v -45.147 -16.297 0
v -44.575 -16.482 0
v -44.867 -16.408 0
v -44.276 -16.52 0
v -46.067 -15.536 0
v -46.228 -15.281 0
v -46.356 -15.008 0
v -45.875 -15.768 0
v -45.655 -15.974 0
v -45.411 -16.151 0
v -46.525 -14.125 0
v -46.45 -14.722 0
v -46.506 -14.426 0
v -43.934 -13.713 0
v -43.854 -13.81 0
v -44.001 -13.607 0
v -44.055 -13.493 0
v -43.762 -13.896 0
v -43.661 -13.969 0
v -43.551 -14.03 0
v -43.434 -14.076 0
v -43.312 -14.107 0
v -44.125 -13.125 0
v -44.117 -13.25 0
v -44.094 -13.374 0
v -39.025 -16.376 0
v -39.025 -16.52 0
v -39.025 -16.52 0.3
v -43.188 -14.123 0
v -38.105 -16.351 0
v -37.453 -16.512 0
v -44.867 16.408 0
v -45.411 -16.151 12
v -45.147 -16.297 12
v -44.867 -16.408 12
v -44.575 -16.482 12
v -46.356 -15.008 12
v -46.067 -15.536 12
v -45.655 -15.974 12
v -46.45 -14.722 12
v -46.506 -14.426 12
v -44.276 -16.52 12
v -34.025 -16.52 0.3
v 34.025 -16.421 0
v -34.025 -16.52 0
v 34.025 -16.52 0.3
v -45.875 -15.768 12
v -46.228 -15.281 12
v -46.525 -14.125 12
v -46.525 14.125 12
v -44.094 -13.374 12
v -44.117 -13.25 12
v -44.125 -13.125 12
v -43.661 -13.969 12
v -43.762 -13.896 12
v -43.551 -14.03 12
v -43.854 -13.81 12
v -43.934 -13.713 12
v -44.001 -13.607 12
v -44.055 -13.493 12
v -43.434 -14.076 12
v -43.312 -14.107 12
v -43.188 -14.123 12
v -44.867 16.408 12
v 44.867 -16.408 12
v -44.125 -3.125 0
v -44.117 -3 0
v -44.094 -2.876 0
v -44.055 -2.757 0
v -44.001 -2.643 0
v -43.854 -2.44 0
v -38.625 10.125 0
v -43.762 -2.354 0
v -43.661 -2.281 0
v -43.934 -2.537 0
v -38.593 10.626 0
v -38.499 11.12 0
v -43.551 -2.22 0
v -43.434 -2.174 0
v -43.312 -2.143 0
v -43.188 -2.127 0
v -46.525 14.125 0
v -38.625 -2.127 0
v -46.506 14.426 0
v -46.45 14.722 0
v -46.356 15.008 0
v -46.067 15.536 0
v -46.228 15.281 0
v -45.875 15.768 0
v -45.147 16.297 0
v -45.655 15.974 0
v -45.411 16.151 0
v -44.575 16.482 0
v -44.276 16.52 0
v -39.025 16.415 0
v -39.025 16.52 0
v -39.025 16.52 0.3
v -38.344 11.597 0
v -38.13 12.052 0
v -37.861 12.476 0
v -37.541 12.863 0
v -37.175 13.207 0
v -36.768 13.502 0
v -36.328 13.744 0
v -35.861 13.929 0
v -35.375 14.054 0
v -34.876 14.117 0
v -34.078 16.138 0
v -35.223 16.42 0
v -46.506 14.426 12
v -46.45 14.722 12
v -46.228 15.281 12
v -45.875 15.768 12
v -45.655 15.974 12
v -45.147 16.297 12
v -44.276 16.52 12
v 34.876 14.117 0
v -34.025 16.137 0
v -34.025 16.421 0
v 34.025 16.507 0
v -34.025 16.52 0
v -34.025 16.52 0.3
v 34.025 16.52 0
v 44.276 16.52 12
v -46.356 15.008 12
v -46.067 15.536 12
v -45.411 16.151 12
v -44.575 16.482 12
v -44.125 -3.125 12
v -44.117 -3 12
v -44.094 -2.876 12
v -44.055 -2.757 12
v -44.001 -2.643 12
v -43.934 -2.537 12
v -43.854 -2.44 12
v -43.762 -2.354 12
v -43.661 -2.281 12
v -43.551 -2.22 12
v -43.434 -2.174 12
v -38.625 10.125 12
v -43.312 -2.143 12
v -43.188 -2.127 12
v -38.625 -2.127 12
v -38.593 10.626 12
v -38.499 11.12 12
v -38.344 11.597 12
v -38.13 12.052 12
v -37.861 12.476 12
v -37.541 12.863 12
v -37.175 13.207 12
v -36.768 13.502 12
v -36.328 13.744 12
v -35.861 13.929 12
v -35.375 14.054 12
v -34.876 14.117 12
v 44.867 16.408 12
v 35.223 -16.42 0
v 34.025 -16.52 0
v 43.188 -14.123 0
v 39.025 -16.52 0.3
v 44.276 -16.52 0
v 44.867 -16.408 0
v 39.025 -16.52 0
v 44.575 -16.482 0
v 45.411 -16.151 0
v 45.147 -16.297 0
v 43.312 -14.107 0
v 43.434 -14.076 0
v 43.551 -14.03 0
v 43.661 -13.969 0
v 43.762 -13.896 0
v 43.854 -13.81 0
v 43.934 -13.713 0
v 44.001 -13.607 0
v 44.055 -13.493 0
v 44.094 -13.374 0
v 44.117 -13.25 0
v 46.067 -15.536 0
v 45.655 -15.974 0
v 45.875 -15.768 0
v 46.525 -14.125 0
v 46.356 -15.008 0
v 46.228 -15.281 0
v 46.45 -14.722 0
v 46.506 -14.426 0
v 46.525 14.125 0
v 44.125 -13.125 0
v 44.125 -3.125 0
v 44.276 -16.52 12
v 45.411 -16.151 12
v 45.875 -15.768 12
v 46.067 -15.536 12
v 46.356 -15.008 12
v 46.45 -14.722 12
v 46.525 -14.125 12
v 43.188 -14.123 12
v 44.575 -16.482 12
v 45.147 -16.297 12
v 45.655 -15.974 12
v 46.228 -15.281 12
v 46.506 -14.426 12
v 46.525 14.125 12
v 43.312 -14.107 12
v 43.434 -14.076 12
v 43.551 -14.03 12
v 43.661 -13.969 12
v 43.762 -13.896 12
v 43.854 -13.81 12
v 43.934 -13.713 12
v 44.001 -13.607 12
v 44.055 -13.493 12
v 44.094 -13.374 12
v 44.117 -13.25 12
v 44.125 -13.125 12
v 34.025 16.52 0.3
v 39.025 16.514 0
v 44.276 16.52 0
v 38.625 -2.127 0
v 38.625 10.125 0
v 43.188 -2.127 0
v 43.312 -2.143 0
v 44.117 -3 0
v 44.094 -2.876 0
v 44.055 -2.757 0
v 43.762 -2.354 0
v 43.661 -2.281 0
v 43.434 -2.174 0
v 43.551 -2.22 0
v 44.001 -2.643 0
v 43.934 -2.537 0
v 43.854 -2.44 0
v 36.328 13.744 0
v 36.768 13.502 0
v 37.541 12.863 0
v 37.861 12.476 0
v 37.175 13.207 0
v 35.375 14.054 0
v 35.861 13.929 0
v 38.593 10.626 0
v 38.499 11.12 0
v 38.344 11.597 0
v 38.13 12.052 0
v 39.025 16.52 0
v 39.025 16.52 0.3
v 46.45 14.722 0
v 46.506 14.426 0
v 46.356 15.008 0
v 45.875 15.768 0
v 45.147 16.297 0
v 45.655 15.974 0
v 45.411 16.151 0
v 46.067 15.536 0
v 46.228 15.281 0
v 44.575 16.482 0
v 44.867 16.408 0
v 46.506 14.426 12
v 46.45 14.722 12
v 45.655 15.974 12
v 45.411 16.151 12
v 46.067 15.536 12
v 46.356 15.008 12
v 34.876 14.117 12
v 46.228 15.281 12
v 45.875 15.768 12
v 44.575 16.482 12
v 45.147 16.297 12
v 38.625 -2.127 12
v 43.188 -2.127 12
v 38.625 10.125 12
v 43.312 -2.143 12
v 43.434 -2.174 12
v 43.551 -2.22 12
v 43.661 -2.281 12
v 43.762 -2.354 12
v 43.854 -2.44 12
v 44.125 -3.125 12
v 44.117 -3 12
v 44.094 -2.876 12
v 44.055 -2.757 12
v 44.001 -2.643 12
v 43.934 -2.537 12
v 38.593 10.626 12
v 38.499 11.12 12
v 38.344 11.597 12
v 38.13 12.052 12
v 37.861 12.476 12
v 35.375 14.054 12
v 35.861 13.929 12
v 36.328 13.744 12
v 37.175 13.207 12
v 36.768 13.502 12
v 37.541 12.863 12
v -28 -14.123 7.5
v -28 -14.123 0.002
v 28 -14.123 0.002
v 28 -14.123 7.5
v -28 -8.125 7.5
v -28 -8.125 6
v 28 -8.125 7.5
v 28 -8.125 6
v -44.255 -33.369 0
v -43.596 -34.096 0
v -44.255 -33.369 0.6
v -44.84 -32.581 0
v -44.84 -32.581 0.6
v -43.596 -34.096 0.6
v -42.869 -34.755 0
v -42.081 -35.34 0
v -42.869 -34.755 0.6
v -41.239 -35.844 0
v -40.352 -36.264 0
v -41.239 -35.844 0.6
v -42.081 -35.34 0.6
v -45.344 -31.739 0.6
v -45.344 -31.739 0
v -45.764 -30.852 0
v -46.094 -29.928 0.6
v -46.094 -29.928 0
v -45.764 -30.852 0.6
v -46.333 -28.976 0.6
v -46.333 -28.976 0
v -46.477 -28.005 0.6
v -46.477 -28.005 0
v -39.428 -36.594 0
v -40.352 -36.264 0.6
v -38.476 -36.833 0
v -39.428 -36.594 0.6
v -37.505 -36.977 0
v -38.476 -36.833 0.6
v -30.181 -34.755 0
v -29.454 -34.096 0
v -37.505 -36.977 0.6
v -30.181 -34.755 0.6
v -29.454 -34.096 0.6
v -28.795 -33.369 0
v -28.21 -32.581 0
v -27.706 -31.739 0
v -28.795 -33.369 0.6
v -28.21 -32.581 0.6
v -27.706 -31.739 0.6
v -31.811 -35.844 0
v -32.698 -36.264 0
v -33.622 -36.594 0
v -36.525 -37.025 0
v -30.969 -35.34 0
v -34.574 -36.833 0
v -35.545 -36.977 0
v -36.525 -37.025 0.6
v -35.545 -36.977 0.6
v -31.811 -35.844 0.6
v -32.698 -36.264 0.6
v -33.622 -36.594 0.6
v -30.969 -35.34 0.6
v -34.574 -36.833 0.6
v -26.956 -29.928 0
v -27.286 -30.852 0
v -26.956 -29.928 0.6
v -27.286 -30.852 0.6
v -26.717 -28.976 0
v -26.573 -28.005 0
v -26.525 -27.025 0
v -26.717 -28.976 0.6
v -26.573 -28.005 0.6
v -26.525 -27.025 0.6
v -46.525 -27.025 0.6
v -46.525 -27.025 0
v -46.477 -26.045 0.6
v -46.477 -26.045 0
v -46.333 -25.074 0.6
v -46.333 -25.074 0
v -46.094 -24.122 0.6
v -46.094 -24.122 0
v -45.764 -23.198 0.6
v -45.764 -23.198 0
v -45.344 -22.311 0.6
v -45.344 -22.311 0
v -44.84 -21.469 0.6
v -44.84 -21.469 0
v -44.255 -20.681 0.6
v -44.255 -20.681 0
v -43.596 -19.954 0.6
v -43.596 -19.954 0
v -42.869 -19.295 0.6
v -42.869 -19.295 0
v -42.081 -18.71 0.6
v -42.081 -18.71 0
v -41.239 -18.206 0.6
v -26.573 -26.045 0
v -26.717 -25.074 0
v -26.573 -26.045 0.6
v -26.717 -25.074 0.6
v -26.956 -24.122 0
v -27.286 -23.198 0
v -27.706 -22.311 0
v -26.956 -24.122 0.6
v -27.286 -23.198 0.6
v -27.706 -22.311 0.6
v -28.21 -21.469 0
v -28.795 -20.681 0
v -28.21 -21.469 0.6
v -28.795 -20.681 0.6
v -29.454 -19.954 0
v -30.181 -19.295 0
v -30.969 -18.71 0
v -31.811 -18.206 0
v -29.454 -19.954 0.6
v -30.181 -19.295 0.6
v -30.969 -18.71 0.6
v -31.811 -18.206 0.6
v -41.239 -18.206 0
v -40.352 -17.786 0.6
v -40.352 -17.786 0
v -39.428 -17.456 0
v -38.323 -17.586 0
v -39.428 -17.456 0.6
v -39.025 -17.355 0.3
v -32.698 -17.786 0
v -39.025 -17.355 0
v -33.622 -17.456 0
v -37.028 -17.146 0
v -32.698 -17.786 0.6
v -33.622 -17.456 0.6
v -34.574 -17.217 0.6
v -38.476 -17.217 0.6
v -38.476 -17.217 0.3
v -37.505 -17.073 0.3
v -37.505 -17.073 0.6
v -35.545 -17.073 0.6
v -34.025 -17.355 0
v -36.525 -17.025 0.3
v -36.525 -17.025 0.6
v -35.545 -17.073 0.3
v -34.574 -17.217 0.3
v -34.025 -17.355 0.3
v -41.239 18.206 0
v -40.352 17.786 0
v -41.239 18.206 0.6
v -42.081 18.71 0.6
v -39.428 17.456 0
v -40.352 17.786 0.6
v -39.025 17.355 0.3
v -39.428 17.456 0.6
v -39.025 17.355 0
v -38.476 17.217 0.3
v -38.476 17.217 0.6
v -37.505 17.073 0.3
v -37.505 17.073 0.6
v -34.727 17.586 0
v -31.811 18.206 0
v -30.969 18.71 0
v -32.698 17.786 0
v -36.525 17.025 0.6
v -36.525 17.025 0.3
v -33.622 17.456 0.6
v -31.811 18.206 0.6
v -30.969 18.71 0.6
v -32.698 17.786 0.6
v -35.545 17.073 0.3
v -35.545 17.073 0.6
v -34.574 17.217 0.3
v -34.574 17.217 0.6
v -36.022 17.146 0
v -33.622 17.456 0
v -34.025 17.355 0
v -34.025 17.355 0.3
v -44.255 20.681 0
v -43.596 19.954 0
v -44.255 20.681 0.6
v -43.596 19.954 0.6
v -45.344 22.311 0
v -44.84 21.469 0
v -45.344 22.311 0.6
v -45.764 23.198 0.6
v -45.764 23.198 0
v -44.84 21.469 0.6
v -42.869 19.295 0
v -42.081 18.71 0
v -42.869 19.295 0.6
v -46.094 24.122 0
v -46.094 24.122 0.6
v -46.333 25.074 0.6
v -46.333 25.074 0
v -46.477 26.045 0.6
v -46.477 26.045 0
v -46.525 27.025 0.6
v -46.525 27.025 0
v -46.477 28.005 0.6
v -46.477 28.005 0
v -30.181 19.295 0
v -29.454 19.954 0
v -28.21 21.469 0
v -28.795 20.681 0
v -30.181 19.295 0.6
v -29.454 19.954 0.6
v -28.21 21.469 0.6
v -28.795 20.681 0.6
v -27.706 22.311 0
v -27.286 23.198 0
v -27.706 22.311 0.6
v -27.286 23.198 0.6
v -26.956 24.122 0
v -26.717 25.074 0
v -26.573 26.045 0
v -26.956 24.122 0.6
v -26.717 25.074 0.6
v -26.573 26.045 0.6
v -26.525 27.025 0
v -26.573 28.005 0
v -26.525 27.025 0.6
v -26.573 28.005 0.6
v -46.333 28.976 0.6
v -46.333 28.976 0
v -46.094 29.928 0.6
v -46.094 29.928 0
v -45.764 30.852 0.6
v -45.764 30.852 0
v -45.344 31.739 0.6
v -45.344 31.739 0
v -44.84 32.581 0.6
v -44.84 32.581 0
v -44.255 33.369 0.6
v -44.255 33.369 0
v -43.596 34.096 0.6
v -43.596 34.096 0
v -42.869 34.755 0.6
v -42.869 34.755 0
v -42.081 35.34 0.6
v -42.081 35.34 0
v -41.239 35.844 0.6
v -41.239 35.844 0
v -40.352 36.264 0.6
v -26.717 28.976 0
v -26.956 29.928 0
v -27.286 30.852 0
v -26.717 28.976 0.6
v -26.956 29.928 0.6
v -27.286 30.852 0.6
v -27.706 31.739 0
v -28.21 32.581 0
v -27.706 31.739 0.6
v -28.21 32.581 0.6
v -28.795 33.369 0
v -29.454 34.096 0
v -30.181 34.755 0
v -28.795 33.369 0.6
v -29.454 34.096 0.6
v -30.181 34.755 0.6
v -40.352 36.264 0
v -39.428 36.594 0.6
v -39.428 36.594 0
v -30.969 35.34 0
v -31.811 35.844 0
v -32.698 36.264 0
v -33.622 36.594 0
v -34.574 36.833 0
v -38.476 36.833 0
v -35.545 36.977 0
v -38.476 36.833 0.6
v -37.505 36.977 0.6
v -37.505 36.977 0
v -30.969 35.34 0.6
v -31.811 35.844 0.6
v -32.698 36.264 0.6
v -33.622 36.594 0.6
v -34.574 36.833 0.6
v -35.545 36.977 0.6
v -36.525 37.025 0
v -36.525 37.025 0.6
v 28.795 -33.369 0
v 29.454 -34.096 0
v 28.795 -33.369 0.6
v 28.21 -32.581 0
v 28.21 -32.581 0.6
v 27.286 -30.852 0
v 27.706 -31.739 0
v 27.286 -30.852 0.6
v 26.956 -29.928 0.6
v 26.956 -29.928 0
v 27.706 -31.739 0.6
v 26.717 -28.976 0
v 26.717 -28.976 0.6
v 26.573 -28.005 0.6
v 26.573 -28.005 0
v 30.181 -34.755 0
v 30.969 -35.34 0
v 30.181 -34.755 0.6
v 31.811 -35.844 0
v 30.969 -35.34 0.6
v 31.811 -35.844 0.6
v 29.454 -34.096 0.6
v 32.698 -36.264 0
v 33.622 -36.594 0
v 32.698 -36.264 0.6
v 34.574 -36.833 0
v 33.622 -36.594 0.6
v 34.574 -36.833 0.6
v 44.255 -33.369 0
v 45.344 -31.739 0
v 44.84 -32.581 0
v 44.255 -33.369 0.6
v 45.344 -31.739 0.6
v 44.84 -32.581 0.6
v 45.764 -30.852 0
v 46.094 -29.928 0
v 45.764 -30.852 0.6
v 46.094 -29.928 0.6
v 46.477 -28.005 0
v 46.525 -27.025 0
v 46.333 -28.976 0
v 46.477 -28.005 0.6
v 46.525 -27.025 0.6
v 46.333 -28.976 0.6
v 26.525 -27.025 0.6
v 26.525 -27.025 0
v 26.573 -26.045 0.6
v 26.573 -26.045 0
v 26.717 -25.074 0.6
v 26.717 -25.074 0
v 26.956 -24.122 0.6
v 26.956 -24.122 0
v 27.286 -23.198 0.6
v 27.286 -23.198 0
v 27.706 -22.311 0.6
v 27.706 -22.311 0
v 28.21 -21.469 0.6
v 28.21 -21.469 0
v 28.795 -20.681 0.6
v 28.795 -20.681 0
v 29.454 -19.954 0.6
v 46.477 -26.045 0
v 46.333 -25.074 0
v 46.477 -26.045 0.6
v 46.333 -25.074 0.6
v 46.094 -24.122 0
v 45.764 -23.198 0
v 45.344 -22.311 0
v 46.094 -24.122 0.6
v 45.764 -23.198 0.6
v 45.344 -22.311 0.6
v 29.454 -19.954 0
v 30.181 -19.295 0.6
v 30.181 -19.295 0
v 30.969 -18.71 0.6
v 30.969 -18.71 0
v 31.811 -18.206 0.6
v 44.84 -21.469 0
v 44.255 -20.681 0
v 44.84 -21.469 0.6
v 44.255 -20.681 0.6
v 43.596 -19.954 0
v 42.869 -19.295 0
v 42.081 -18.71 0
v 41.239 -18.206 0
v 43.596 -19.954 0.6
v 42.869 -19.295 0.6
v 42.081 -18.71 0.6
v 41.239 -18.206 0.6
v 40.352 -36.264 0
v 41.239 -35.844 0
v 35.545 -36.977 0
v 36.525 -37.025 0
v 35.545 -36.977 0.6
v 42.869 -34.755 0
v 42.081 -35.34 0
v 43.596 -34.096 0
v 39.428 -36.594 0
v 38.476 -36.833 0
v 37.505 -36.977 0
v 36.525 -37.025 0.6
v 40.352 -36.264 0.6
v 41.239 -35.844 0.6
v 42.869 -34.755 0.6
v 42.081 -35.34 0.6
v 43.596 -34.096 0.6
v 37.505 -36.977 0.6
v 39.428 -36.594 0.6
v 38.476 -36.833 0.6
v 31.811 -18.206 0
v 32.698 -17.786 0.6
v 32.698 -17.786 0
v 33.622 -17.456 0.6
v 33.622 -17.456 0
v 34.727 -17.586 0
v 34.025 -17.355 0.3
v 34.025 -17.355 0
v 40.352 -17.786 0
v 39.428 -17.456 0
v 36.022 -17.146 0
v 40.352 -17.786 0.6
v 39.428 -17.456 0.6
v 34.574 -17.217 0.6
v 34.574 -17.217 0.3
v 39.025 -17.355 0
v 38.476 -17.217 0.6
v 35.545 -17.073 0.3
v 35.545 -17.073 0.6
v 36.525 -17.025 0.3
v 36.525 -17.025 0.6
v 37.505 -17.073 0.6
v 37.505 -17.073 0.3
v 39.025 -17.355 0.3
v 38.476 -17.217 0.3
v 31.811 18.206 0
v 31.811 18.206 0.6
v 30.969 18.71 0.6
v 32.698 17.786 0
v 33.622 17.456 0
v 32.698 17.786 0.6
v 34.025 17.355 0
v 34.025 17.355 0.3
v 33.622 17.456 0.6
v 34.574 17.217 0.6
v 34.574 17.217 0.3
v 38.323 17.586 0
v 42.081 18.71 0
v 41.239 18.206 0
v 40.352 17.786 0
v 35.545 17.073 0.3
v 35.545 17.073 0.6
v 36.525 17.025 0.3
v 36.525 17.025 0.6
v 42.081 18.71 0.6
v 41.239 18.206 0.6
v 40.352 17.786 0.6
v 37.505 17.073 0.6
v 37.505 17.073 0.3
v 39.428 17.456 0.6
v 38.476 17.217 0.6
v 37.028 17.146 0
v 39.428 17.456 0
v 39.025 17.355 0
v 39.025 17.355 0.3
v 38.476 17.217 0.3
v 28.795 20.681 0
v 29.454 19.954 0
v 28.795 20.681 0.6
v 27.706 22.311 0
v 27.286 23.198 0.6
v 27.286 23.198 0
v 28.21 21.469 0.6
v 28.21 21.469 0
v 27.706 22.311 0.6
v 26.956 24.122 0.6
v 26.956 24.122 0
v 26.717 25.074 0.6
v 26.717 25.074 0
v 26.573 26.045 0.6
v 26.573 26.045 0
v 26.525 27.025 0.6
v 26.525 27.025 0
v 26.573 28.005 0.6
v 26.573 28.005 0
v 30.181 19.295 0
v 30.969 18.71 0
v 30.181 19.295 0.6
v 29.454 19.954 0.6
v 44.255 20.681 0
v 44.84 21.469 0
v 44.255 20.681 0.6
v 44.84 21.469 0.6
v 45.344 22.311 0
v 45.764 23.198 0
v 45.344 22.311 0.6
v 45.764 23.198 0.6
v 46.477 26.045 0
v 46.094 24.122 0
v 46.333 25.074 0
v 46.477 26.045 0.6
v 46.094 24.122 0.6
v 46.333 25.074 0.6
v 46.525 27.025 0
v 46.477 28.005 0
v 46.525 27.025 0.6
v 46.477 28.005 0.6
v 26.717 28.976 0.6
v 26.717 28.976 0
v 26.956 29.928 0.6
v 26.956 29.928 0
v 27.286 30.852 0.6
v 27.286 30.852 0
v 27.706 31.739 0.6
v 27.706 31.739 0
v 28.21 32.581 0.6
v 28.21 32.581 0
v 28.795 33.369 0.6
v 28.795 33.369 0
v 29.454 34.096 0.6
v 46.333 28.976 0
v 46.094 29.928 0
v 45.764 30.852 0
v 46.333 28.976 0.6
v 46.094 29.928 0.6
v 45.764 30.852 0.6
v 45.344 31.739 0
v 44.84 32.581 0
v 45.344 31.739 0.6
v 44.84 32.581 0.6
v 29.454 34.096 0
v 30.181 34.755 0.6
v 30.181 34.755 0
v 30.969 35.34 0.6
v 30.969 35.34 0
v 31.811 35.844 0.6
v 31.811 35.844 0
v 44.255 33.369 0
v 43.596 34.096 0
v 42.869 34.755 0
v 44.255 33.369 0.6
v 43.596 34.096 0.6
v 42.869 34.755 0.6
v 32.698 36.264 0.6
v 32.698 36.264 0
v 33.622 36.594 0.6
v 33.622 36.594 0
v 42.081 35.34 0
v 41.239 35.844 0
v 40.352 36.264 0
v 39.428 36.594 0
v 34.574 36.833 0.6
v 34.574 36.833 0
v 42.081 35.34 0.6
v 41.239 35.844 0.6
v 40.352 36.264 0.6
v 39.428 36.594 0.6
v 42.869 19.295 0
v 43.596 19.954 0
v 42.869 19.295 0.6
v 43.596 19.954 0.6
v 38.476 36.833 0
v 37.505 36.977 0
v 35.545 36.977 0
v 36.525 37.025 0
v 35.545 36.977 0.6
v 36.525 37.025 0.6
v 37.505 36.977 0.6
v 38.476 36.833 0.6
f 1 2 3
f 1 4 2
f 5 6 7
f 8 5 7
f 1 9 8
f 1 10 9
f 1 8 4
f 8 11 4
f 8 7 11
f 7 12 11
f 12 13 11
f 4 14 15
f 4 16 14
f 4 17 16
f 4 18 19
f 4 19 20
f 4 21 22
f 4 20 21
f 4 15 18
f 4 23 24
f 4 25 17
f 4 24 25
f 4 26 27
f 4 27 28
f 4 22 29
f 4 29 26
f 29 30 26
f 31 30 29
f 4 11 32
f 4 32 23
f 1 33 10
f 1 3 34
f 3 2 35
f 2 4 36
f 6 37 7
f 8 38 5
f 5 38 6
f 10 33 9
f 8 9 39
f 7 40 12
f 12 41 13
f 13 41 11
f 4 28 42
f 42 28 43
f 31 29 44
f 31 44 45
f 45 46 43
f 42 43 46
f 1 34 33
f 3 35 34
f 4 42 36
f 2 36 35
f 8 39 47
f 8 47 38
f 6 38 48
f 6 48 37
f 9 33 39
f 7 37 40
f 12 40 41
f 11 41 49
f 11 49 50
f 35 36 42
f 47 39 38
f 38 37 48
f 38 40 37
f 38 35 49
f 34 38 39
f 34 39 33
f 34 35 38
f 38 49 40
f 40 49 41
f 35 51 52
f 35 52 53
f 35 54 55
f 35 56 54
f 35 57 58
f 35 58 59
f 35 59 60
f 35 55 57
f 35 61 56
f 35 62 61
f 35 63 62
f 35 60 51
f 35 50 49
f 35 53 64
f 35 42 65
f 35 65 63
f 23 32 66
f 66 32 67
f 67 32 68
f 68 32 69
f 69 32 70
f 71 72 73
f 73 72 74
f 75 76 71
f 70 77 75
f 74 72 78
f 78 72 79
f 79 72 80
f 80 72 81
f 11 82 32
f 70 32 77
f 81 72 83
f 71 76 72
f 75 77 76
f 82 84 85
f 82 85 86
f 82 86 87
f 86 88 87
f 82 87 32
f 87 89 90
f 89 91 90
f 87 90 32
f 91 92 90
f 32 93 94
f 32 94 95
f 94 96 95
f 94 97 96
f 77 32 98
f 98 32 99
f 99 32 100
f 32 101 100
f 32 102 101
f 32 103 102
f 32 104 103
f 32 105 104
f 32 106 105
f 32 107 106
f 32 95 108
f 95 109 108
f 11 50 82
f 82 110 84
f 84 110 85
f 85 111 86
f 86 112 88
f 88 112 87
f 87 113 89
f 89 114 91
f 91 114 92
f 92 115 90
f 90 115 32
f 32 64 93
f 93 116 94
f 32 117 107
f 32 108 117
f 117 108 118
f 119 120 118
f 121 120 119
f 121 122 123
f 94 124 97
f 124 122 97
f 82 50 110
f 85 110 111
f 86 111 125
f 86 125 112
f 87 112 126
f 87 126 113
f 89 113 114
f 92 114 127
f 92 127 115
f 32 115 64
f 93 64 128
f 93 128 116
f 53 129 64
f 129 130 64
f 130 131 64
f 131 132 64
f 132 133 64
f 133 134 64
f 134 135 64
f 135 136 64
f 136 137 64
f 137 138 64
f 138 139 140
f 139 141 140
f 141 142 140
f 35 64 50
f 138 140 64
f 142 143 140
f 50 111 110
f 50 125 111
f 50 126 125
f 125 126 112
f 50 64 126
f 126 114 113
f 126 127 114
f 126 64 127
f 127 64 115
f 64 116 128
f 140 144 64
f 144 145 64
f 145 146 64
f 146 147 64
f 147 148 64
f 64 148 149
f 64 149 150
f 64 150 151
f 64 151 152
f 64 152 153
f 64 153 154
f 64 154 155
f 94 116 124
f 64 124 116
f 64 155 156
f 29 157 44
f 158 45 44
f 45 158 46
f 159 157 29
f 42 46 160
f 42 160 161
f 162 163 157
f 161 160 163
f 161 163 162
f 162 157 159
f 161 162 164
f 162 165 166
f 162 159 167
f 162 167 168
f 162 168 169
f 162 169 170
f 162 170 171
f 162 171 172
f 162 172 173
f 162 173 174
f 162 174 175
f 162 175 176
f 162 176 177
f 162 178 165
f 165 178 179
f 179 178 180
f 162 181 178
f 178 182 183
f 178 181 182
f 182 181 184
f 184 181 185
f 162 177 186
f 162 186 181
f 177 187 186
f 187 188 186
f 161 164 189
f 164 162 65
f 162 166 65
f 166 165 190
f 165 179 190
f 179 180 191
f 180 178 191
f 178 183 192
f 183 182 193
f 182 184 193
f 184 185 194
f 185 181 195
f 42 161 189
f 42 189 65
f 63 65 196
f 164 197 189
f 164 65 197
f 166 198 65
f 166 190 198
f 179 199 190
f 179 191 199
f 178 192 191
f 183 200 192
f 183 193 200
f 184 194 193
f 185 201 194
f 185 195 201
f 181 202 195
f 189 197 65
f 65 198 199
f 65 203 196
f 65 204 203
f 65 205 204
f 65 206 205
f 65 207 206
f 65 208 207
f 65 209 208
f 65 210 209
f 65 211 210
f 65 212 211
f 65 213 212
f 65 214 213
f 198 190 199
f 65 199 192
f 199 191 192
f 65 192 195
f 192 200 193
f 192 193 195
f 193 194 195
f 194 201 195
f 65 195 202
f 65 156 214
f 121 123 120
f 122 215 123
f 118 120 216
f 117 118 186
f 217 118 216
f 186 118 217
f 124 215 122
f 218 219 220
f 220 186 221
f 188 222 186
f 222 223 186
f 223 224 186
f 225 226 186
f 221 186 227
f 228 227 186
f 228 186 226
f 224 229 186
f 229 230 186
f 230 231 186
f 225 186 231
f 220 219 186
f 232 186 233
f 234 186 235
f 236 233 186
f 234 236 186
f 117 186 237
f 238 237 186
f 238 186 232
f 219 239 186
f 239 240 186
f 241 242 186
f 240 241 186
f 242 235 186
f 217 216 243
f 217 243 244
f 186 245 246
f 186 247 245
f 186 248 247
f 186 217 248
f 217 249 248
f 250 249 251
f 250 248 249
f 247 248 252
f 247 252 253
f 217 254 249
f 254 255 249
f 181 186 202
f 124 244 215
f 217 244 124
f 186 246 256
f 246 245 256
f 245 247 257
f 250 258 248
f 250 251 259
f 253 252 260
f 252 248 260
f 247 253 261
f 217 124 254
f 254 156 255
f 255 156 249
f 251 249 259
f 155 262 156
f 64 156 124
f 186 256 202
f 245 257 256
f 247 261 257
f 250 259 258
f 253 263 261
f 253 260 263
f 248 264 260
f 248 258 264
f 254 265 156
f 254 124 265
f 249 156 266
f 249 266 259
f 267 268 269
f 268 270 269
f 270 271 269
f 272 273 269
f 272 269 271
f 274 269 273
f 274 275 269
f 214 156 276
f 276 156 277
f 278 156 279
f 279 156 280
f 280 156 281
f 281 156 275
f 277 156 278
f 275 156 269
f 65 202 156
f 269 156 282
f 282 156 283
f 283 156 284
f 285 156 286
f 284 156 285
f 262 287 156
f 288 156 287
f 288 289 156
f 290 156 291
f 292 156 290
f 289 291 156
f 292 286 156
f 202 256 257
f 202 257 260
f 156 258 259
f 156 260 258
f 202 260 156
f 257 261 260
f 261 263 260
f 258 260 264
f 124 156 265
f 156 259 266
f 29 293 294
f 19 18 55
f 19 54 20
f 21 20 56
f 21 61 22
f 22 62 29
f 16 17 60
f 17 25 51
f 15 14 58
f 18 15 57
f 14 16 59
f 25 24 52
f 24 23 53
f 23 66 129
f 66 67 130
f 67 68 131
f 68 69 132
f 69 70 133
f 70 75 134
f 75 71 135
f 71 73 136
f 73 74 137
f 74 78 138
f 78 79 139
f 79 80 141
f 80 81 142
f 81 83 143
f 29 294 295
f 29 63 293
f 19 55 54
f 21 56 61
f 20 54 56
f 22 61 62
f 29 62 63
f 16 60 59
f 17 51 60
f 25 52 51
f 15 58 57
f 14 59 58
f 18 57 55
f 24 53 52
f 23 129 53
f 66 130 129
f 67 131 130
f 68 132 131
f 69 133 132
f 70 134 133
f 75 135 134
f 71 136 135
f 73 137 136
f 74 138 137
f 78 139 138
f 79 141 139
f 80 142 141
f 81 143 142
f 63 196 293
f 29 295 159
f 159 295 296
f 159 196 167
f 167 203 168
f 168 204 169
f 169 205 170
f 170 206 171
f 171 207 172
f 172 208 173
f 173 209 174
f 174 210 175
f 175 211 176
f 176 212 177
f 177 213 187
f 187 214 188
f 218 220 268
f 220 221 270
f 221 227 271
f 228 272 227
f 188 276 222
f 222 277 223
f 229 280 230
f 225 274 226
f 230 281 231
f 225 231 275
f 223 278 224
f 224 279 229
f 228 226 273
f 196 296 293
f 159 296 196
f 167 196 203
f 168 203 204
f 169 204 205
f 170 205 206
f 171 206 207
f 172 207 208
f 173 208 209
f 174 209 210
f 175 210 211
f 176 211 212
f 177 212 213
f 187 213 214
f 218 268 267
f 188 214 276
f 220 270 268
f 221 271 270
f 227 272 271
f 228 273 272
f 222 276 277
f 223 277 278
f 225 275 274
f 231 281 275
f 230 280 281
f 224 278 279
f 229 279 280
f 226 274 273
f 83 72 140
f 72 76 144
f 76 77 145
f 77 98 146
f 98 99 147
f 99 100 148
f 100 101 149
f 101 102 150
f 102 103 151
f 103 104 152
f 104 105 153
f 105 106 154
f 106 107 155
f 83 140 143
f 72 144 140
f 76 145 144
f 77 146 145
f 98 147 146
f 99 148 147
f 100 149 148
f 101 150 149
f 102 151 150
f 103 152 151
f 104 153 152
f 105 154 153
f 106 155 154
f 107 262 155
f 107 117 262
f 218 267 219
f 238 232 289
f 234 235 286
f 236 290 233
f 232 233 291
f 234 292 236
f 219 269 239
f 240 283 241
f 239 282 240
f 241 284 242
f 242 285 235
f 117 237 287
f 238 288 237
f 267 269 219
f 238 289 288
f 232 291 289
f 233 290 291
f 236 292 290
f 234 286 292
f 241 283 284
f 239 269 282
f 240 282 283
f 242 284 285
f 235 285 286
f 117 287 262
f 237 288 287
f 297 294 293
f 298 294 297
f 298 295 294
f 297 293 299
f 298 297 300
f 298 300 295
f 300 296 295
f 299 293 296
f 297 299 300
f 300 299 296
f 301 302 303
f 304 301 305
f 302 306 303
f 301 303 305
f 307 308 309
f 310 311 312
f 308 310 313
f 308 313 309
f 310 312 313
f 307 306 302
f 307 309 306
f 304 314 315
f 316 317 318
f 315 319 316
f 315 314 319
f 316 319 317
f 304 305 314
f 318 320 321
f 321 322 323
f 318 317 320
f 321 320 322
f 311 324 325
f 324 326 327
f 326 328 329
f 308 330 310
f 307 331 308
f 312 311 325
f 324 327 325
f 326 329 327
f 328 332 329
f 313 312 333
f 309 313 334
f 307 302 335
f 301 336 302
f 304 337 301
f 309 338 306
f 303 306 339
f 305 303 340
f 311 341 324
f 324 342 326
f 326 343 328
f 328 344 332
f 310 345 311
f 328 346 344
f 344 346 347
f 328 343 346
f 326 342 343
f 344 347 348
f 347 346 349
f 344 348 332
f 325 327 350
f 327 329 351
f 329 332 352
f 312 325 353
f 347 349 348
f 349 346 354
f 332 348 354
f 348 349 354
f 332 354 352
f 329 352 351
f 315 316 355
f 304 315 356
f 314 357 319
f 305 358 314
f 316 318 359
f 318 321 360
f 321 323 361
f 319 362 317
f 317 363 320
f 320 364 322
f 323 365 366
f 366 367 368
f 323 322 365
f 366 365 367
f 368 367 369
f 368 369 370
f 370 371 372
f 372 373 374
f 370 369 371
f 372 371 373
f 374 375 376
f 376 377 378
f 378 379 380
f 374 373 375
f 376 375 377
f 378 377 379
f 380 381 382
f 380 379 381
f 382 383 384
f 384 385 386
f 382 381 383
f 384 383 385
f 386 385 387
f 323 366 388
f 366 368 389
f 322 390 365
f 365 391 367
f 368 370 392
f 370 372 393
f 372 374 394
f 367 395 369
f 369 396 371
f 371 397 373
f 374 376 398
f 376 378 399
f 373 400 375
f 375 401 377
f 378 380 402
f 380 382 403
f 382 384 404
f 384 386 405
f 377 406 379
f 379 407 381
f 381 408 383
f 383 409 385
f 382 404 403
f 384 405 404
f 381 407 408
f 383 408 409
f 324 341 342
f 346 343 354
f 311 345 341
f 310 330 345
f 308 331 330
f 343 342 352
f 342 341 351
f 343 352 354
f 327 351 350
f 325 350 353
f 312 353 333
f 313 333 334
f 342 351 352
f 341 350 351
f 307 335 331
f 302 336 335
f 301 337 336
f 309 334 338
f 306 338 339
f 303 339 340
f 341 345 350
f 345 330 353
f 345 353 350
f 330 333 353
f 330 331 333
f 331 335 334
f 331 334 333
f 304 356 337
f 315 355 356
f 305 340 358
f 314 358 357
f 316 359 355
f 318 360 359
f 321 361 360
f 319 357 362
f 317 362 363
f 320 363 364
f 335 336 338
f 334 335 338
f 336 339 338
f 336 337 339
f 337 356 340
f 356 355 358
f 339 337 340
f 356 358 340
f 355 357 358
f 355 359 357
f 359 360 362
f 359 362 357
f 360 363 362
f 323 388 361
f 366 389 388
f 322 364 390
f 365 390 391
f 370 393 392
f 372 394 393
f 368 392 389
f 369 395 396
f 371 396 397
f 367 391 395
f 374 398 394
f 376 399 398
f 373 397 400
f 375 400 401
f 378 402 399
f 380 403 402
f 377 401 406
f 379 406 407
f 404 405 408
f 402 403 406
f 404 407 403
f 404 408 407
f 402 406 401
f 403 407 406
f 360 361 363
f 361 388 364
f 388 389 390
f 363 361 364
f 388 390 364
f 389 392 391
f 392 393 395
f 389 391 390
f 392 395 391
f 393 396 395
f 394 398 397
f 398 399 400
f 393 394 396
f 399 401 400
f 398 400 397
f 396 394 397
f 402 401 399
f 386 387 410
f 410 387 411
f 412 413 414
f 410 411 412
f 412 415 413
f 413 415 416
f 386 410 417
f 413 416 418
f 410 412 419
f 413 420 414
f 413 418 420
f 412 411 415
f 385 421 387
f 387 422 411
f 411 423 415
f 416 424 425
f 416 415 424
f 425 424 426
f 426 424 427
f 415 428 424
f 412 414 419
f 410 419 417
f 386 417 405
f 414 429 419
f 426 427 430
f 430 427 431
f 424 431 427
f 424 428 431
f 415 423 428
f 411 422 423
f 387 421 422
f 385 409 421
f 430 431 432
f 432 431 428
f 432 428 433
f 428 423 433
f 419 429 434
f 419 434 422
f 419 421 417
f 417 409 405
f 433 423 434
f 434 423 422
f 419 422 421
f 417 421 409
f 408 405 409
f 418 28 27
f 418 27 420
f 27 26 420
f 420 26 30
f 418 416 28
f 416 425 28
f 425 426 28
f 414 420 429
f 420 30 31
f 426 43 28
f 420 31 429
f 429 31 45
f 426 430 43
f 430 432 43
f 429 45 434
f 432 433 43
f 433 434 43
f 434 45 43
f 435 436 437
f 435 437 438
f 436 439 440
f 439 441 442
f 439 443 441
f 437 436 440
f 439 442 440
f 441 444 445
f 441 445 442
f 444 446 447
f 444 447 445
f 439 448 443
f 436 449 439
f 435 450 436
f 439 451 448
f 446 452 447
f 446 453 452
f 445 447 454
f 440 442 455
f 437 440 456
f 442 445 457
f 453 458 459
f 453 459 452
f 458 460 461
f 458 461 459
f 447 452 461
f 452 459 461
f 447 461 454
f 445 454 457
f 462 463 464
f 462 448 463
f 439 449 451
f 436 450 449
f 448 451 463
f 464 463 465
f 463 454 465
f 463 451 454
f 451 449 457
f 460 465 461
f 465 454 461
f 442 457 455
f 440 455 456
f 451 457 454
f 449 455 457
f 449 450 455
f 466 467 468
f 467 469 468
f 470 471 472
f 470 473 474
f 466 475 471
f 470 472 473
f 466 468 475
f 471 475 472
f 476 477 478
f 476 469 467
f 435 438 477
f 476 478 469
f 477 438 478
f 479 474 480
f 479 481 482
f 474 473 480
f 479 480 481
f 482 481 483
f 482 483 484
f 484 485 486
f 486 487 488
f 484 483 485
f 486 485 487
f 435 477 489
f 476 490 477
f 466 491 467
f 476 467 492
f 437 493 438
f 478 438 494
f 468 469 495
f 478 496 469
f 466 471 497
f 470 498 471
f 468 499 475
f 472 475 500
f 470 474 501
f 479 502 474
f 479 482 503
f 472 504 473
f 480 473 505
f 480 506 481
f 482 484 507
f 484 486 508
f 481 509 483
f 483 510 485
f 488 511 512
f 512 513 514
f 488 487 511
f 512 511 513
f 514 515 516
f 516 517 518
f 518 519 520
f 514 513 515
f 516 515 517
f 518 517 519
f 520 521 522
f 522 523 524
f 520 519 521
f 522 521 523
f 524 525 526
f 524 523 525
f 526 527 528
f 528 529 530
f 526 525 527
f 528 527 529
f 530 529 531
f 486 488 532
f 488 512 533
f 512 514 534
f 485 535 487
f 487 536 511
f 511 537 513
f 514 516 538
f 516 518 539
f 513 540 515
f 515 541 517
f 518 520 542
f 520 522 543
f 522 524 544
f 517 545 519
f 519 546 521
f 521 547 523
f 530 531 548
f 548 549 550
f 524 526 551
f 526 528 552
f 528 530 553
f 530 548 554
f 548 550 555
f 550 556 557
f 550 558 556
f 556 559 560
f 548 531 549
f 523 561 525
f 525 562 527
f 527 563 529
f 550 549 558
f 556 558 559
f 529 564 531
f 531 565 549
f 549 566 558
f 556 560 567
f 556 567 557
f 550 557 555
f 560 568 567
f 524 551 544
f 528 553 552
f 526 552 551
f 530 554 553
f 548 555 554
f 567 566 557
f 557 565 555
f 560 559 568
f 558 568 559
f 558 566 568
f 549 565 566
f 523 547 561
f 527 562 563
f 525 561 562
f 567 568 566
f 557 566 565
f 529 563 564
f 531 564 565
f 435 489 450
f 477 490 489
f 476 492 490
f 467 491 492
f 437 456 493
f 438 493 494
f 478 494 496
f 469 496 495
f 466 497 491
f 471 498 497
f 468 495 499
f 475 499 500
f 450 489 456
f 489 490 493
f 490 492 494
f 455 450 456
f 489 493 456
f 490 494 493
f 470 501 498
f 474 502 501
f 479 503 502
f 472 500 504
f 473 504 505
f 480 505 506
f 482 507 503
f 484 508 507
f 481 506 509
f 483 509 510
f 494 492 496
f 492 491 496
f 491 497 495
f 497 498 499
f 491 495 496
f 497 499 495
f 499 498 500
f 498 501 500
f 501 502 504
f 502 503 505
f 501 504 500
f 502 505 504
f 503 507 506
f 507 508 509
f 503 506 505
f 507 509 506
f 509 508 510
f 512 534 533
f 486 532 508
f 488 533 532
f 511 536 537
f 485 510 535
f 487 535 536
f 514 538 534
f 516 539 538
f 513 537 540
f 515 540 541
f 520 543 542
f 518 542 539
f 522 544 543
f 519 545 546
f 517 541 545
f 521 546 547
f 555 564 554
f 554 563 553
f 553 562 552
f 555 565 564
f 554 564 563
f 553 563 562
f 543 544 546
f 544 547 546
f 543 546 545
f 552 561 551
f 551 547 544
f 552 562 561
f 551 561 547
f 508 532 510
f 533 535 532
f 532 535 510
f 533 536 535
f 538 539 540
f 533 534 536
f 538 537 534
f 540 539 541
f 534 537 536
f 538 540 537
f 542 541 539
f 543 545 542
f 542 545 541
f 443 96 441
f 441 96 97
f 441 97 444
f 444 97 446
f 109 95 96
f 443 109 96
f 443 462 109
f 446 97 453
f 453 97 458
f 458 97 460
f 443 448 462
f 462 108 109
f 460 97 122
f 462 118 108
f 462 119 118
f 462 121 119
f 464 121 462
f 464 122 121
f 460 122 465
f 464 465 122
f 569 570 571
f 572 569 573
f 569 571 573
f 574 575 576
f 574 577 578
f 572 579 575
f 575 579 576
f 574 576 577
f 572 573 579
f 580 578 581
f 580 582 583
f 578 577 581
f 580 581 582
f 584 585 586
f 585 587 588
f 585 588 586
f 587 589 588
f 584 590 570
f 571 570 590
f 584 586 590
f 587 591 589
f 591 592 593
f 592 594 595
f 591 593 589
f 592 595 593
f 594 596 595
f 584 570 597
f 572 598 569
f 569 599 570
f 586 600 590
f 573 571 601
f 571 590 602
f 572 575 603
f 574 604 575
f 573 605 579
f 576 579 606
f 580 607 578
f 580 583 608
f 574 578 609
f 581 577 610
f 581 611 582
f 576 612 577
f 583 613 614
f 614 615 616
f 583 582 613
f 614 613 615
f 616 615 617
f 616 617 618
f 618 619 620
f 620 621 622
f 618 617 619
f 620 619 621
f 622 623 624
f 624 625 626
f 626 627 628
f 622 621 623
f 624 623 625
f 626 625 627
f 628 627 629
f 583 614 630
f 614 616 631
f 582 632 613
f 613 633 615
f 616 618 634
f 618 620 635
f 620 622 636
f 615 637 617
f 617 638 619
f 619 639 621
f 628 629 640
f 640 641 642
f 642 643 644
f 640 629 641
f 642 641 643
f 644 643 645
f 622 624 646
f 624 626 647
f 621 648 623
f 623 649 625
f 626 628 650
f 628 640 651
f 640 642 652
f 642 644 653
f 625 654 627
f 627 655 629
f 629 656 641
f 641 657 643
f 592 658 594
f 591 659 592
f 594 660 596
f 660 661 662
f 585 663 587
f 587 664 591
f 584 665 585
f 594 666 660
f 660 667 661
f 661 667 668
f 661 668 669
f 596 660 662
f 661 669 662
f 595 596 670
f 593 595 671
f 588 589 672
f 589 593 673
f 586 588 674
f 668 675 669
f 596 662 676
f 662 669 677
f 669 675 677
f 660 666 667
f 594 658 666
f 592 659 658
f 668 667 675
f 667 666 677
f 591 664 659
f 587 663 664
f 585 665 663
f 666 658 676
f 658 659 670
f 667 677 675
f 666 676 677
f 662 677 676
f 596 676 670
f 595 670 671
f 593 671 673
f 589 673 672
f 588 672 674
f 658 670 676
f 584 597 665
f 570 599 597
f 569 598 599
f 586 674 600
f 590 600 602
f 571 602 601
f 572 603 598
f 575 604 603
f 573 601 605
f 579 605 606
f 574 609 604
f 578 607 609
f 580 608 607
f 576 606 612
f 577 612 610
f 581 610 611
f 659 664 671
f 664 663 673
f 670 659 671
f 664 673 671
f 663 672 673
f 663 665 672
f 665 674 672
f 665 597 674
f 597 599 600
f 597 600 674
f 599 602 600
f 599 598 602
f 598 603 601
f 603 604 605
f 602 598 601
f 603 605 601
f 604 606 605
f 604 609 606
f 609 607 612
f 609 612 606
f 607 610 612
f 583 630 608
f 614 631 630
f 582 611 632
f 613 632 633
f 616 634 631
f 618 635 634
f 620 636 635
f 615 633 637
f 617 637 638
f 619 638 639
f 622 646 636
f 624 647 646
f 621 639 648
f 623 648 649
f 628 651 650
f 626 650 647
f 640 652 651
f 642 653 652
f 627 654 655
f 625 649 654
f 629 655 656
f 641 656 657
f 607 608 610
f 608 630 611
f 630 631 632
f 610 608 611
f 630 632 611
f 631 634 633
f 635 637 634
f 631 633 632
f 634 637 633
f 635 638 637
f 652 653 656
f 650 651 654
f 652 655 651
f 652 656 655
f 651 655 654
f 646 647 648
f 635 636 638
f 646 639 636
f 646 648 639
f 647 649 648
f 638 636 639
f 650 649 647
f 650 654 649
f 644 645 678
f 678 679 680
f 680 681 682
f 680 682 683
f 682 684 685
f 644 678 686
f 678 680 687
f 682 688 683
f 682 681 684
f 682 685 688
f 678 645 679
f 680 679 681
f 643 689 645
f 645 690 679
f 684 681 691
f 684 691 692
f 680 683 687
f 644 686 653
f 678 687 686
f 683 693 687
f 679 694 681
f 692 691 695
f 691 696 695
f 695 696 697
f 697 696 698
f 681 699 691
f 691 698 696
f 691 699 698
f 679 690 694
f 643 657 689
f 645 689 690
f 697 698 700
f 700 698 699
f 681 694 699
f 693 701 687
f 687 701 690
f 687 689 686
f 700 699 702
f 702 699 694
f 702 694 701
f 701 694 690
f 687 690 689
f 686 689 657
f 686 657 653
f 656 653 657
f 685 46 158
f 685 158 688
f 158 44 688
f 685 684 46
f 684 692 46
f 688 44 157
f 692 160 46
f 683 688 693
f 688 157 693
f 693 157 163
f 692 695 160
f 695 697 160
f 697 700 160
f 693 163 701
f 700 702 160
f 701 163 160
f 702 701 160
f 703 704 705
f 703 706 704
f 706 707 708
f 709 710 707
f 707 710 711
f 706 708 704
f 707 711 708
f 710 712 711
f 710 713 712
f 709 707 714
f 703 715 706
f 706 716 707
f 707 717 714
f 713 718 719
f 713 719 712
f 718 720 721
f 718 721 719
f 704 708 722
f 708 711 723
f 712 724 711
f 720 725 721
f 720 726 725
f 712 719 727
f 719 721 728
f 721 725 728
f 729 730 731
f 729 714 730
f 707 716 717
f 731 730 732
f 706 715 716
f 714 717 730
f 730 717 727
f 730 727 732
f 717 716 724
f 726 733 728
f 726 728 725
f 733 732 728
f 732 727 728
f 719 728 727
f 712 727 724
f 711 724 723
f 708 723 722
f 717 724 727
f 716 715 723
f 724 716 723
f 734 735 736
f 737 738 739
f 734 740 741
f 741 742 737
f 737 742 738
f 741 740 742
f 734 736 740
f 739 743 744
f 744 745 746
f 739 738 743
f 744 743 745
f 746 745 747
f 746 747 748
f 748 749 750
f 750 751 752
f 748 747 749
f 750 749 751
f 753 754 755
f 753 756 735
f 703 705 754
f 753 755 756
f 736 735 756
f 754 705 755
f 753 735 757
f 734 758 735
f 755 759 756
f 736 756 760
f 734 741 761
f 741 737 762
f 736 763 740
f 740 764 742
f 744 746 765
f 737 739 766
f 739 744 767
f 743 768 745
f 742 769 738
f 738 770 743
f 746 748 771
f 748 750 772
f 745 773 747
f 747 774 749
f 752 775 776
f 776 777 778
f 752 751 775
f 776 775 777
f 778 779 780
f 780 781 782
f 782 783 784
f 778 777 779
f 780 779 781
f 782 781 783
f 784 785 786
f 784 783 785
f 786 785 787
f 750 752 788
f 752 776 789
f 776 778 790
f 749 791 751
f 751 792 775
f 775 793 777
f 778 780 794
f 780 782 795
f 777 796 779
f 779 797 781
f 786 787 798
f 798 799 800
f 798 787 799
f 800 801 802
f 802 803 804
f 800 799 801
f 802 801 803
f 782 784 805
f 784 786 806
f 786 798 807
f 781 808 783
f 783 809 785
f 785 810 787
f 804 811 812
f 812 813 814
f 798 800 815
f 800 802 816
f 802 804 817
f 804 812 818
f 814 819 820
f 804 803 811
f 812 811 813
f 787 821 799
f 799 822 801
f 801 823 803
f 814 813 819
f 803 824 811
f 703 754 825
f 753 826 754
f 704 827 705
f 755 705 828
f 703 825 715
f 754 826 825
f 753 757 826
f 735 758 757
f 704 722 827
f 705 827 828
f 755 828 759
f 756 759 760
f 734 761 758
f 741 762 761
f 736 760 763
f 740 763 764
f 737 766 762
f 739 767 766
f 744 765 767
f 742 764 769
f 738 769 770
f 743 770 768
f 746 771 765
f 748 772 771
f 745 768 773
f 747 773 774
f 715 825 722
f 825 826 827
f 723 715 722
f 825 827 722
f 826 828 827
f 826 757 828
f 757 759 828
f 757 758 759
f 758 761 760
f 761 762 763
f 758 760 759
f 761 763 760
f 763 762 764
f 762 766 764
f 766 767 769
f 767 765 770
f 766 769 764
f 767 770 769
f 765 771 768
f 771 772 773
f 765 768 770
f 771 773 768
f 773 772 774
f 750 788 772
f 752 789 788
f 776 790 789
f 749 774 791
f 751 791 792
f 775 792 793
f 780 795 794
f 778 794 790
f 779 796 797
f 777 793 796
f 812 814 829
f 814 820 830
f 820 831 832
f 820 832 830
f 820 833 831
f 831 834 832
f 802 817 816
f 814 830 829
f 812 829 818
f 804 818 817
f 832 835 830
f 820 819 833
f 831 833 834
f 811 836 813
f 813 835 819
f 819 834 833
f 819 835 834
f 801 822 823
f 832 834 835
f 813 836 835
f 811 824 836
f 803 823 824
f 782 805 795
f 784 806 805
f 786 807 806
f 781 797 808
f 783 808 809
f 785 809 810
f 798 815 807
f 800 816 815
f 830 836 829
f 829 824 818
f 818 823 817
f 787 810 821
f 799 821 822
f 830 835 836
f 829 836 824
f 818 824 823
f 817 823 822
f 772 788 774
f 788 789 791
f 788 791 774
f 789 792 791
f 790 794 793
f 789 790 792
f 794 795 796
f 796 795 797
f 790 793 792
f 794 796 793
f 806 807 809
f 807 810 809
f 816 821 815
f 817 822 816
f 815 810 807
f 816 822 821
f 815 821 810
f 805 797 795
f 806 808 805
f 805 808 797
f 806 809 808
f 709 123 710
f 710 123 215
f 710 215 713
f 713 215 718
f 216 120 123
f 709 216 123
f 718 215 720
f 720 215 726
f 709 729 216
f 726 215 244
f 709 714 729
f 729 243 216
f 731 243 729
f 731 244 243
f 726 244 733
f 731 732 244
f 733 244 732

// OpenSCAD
$fn = 50;

union() {
	difference() {
		union() {
			hull() {
				translate(v = [-44.125, 14.124999999999998, 0]) {
					cylinder(h = 12, r = 2.4);
				}
				translate(v = [44.125, 14.124999999999998, 0]) {
					cylinder(h = 12, r = 2.4);
				}
				translate(v = [-44.125, -14.124999999999998, 0]) {
					cylinder(h = 12, r = 2.4);
				}
				translate(v = [44.125, -14.124999999999998, 0]) {
					cylinder(h = 12, r = 2.4);
				}
			}
		}
		union() {
			translate(v = [0.0, -8.124999999999998, -0.1]) {
				hull() {
					translate(v = [-43.125, 5.0, 0]) {
						cylinder(h = 12.2, r = 1.0);
					}
					translate(v = [43.125, 5.0, 0]) {
						cylinder(h = 12.2, r = 1.0);
					}
					translate(v = [-43.125, -5.0, 0]) {
						cylinder(h = 12.2, r = 1.0);
					}
					translate(v = [43.125, -5.0, 0]) {
						cylinder(h = 12.2, r = 1.0);
					}
				}
			}
			translate(v = [0.0, 1.7763568394002505e-15, -0.1]) {
				hull() {
					translate(v = [-34.625, 10.125, 0]) {
						cylinder(h = 12.2, r = 4.0);
					}
					translate(v = [34.625, 10.125, 0]) {
						cylinder(h = 12.2, r = 4.0);
					}
					translate(v = [-34.625, -10.125, 0]) {
						cylinder(h = 12.2, r = 4.0);
					}
					translate(v = [34.625, -10.125, 0]) {
						cylinder(h = 12.2, r = 4.0);
					}
				}
			}
		}
	}
	union() {
		#translate(v = [-28.0, -14.124999999999998, 0]) {
			rotate(a = [90, 0, 90]) {
				linear_extrude(height = 56.0) {
					polygon(points = [[-1.8, 0], [0, 0], [6.0, 6.0], [6.0, 7.5], [-1.8, 7.5]]);
				}
			}
		}
		translate(v = [-36.525, -27.025, 0]) {
			linear_extrude(height = 0.6) {
				polygon(points = [[10.0, 0.0], [9.95184726672197, 0.980171403295606], [9.807852804032304, 1.9509032201612824], [9.569403357322088, 2.902846772544623], [9.238795325112868, 3.826834323650898], [8.819212643483551, 4.7139673682599765], [8.314696123025453, 5.555702330196022], [7.73010453362737, 6.343932841636455], [7.0710678118654755, 7.0710678118654755], [6.343932841636455, 7.730104533627369], [5.555702330196023, 8.314696123025453], [4.713967368259978, 8.81921264348355], [3.8268343236508984, 9.238795325112868], [2.902846772544623, 9.56940335732209], [1.9509032201612833, 9.807852804032304], [0.9801714032956077, 9.951847266721968], [6.123233995736766e-16, 10.0], [-0.9801714032956065, 9.95184726672197], [-1.950903220161282, 9.807852804032304], [-2.9028467725446214, 9.56940335732209], [-3.826834323650897, 9.238795325112868], [-4.713967368259977, 8.819212643483551], [-5.55570233019602, 8.314696123025453], [-6.3439328416364535, 7.730104533627371], [-7.071067811865475, 7.0710678118654755], [-7.73010453362737, 6.343932841636455], [-8.314696123025453, 5.555702330196022], [-8.81921264348355, 4.713967368259978], [-9.238795325112868, 3.826834323650899], [-9.569403357322088, 2.902846772544624], [-9.807852804032304, 1.9509032201612861], [-9.951847266721968, 0.9801714032956083], [-10.0, 1.2246467991473533e-15], [-9.95184726672197, -0.9801714032956059], [-9.807852804032304, -1.9509032201612837], [-9.56940335732209, -2.902846772544621], [-9.238795325112868, -3.8268343236508966], [-8.819212643483551, -4.7139673682599765], [-8.314696123025454, -5.55570233019602], [-7.730104533627371, -6.343932841636453], [-7.071067811865477, -7.071067811865475], [-6.343932841636459, -7.730104533627367], [-5.555702330196022, -8.314696123025453], [-4.713967368259978, -8.81921264348355], [-3.8268343236509033, -9.238795325112864], [-2.9028467725446245, -9.569403357322088], [-1.9509032201612866, -9.807852804032303], [-0.9801714032956045, -9.95184726672197], [-1.8369701987210296e-15, -10.0], [0.9801714032956009, -9.95184726672197], [1.950903220161283, -9.807852804032304], [2.9028467725446205, -9.56940335732209], [3.8268343236509, -9.238795325112866], [4.713967368259976, -8.819212643483551], [5.555702330196018, -8.314696123025454], [6.343932841636456, -7.730104533627369], [7.071067811865474, -7.071067811865477], [7.730104533627365, -6.343932841636459], [8.314696123025453, -5.555702330196022], [8.819212643483548, -4.713967368259979], [9.238795325112864, -3.826834323650904], [9.569403357322088, -2.902846772544625], [9.807852804032303, -1.9509032201612873], [9.95184726672197, -0.980171403295605]]);
			}
		}
		translate(v = [-39.025, -17.825, 0]) {
			cube(size = [5.0, 1.6999999999999993, 0.3]);
		}
		translate(v = [-36.525, 27.025, 0]) {
			linear_extrude(height = 0.6) {
				polygon(points = [[10.0, 0.0], [9.95184726672197, 0.980171403295606], [9.807852804032304, 1.9509032201612824], [9.569403357322088, 2.902846772544623], [9.238795325112868, 3.826834323650898], [8.819212643483551, 4.7139673682599765], [8.314696123025453, 5.555702330196022], [7.73010453362737, 6.343932841636455], [7.0710678118654755, 7.0710678118654755], [6.343932841636455, 7.730104533627369], [5.555702330196023, 8.314696123025453], [4.713967368259978, 8.81921264348355], [3.8268343236508984, 9.238795325112868], [2.902846772544623, 9.56940335732209], [1.9509032201612833, 9.807852804032304], [0.9801714032956077, 9.951847266721968], [6.123233995736766e-16, 10.0], [-0.9801714032956065, 9.95184726672197], [-1.950903220161282, 9.807852804032304], [-2.9028467725446214, 9.56940335732209], [-3.826834323650897, 9.238795325112868], [-4.713967368259977, 8.819212643483551], [-5.55570233019602, 8.314696123025453], [-6.3439328416364535, 7.730104533627371], [-7.071067811865475, 7.0710678118654755], [-7.73010453362737, 6.343932841636455], [-8.314696123025453, 5.555702330196022], [-8.81921264348355, 4.713967368259978], [-9.238795325112868, 3.826834323650899], [-9.569403357322088, 2.902846772544624], [-9.807852804032304, 1.9509032201612861], [-9.951847266721968, 0.9801714032956083], [-10.0, 1.2246467991473533e-15], [-9.95184726672197, -0.9801714032956059], [-9.807852804032304, -1.9509032201612837], [-9.56940335732209, -2.902846772544621], [-9.238795325112868, -3.8268343236508966], [-8.819212643483551, -4.7139673682599765], [-8.314696123025454, -5.55570233019602], [-7.730104533627371, -6.343932841636453], [-7.071067811865477, -7.071067811865475], [-6.343932841636459, -7.730104533627367], [-5.555702330196022, -8.314696123025453], [-4.713967368259978, -8.81921264348355], [-3.8268343236509033, -9.238795325112864], [-2.9028467725446245, -9.569403357322088], [-1.9509032201612866, -9.807852804032303], [-0.9801714032956045, -9.95184726672197], [-1.8369701987210296e-15, -10.0], [0.9801714032956009, -9.95184726672197], [1.950903220161283, -9.807852804032304], [2.9028467725446205, -9.56940335732209], [3.8268343236509, -9.238795325112866], [4.713967368259976, -8.819212643483551], [5.555702330196018, -8.314696123025454], [6.343932841636456, -7.730104533627369], [7.071067811865474, -7.071067811865477], [7.730104533627365, -6.343932841636459], [8.314696123025453, -5.555702330196022], [8.819212643483548, -4.713967368259979], [9.238795325112864, -3.826834323650904], [9.569403357322088, -2.902846772544625], [9.807852804032303, -1.9509032201612873], [9.95184726672197, -0.980171403295605]]);
			}
		}
		translate(v = [-39.025, 16.125, 0]) {
			cube(size = [5.0, 1.6999999999999993, 0.3]);
		}
		translate(v = [36.525, -27.025, 0]) {
			linear_extrude(height = 0.6) {
				polygon(points = [[10.0, 0.0], [9.95184726672197, 0.980171403295606], [9.807852804032304, 1.9509032201612824], [9.569403357322088, 2.902846772544623], [9.238795325112868, 3.826834323650898], [8.819212643483551, 4.7139673682599765], [8.314696123025453, 5.555702330196022], [7.73010453362737, 6.343932841636455], [7.0710678118654755, 7.0710678118654755], [6.343932841636455, 7.730104533627369], [5.555702330196023, 8.314696123025453], [4.713967368259978, 8.81921264348355], [3.8268343236508984, 9.238795325112868], [2.902846772544623, 9.56940335732209], [1.9509032201612833, 9.807852804032304], [0.9801714032956077, 9.951847266721968], [6.123233995736766e-16, 10.0], [-0.9801714032956065, 9.95184726672197], [-1.950903220161282, 9.807852804032304], [-2.9028467725446214, 9.56940335732209], [-3.826834323650897, 9.238795325112868], [-4.713967368259977, 8.819212643483551], [-5.55570233019602, 8.314696123025453], [-6.3439328416364535, 7.730104533627371], [-7.071067811865475, 7.0710678118654755], [-7.73010453362737, 6.343932841636455], [-8.314696123025453, 5.555702330196022], [-8.81921264348355, 4.713967368259978], [-9.238795325112868, 3.826834323650899], [-9.569403357322088, 2.902846772544624], [-9.807852804032304, 1.9509032201612861], [-9.951847266721968, 0.9801714032956083], [-10.0, 1.2246467991473533e-15], [-9.95184726672197, -0.9801714032956059], [-9.807852804032304, -1.9509032201612837], [-9.56940335732209, -2.902846772544621], [-9.238795325112868, -3.8268343236508966], [-8.819212643483551, -4.7139673682599765], [-8.314696123025454, -5.55570233019602], [-7.730104533627371, -6.343932841636453], [-7.071067811865477, -7.071067811865475], [-6.343932841636459, -7.730104533627367], [-5.555702330196022, -8.314696123025453], [-4.713967368259978, -8.81921264348355], [-3.8268343236509033, -9.238795325112864], [-2.9028467725446245, -9.569403357322088], [-1.9509032201612866, -9.807852804032303], [-0.9801714032956045, -9.95184726672197], [-1.8369701987210296e-15, -10.0], [0.9801714032956009, -9.95184726672197], [1.950903220161283, -9.807852804032304], [2.9028467725446205, -9.56940335732209], [3.8268343236509, -9.238795325112866], [4.713967368259976, -8.819212643483551], [5.555702330196018, -8.314696123025454], [6.343932841636456, -7.730104533627369], [7.071067811865474, -7.071067811865477], [7.730104533627365, -6.343932841636459], [8.314696123025453, -5.555702330196022], [8.819212643483548, -4.713967368259979], [9.238795325112864, -3.826834323650904], [9.569403357322088, -2.902846772544625], [9.807852804032303, -1.9509032201612873], [9.95184726672197, -0.980171403295605]]);
			}
		}
		translate(v = [34.025, -17.825, 0]) {
			cube(size = [5.0, 1.6999999999999993, 0.3]);
		}
		translate(v = [36.525, 27.025, 0]) {
			linear_extrude(height = 0.6) {
				polygon(points = [[10.0, 0.0], [9.95184726672197, 0.980171403295606], [9.807852804032304, 1.9509032201612824], [9.569403357322088, 2.902846772544623], [9.238795325112868, 3.826834323650898], [8.819212643483551, 4.7139673682599765], [8.314696123025453, 5.555702330196022], [7.73010453362737, 6.343932841636455], [7.0710678118654755, 7.0710678118654755], [6.343932841636455, 7.730104533627369], [5.555702330196023, 8.314696123025453], [4.713967368259978, 8.81921264348355], [3.8268343236508984, 9.238795325112868], [2.902846772544623, 9.56940335732209], [1.9509032201612833, 9.807852804032304], [0.9801714032956077, 9.951847266721968], [6.123233995736766e-16, 10.0], [-0.9801714032956065, 9.95184726672197], [-1.950903220161282, 9.807852804032304], [-2.9028467725446214, 9.56940335732209], [-3.826834323650897, 9.238795325112868], [-4.713967368259977, 8.819212643483551], [-5.55570233019602, 8.314696123025453], [-6.3439328416364535, 7.730104533627371], [-7.071067811865475, 7.0710678118654755], [-7.73010453362737, 6.343932841636455], [-8.314696123025453, 5.555702330196022], [-8.81921264348355, 4.713967368259978], [-9.238795325112868, 3.826834323650899], [-9.569403357322088, 2.902846772544624], [-9.807852804032304, 1.9509032201612861], [-9.951847266721968, 0.9801714032956083], [-10.0, 1.2246467991473533e-15], [-9.95184726672197, -0.9801714032956059], [-9.807852804032304, -1.9509032201612837], [-9.56940335732209, -2.902846772544621], [-9.238795325112868, -3.8268343236508966], [-8.819212643483551, -4.7139673682599765], [-8.314696123025454, -5.55570233019602], [-7.730104533627371, -6.343932841636453], [-7.071067811865477, -7.071067811865475], [-6.343932841636459, -7.730104533627367], [-5.555702330196022, -8.314696123025453], [-4.713967368259978, -8.81921264348355], [-3.8268343236509033, -9.238795325112864], [-2.9028467725446245, -9.569403357322088], [-1.9509032201612866, -9.807852804032303], [-0.9801714032956045, -9.95184726672197], [-1.8369701987210296e-15, -10.0], [0.9801714032956009, -9.95184726672197], [1.950903220161283, -9.807852804032304], [2.9028467725446205, -9.56940335732209], [3.8268343236509, -9.238795325112866], [4.713967368259976, -8.819212643483551], [5.555702330196018, -8.314696123025454], [6.343932841636456, -7.730104533627369], [7.071067811865474, -7.071067811865477], [7.730104533627365, -6.343932841636459], [8.314696123025453, -5.555702330196022], [8.819212643483548, -4.713967368259979], [9.238795325112864, -3.826834323650904], [9.569403357322088, -2.902846772544625], [9.807852804032303, -1.9509032201612873], [9.95184726672197, -0.980171403295605]]);
			}
		}
		translate(v = [34.025, 16.125, 0]) {
			cube(size = [5.0, 1.6999999999999993, 0.3]);
		}
	}
}
